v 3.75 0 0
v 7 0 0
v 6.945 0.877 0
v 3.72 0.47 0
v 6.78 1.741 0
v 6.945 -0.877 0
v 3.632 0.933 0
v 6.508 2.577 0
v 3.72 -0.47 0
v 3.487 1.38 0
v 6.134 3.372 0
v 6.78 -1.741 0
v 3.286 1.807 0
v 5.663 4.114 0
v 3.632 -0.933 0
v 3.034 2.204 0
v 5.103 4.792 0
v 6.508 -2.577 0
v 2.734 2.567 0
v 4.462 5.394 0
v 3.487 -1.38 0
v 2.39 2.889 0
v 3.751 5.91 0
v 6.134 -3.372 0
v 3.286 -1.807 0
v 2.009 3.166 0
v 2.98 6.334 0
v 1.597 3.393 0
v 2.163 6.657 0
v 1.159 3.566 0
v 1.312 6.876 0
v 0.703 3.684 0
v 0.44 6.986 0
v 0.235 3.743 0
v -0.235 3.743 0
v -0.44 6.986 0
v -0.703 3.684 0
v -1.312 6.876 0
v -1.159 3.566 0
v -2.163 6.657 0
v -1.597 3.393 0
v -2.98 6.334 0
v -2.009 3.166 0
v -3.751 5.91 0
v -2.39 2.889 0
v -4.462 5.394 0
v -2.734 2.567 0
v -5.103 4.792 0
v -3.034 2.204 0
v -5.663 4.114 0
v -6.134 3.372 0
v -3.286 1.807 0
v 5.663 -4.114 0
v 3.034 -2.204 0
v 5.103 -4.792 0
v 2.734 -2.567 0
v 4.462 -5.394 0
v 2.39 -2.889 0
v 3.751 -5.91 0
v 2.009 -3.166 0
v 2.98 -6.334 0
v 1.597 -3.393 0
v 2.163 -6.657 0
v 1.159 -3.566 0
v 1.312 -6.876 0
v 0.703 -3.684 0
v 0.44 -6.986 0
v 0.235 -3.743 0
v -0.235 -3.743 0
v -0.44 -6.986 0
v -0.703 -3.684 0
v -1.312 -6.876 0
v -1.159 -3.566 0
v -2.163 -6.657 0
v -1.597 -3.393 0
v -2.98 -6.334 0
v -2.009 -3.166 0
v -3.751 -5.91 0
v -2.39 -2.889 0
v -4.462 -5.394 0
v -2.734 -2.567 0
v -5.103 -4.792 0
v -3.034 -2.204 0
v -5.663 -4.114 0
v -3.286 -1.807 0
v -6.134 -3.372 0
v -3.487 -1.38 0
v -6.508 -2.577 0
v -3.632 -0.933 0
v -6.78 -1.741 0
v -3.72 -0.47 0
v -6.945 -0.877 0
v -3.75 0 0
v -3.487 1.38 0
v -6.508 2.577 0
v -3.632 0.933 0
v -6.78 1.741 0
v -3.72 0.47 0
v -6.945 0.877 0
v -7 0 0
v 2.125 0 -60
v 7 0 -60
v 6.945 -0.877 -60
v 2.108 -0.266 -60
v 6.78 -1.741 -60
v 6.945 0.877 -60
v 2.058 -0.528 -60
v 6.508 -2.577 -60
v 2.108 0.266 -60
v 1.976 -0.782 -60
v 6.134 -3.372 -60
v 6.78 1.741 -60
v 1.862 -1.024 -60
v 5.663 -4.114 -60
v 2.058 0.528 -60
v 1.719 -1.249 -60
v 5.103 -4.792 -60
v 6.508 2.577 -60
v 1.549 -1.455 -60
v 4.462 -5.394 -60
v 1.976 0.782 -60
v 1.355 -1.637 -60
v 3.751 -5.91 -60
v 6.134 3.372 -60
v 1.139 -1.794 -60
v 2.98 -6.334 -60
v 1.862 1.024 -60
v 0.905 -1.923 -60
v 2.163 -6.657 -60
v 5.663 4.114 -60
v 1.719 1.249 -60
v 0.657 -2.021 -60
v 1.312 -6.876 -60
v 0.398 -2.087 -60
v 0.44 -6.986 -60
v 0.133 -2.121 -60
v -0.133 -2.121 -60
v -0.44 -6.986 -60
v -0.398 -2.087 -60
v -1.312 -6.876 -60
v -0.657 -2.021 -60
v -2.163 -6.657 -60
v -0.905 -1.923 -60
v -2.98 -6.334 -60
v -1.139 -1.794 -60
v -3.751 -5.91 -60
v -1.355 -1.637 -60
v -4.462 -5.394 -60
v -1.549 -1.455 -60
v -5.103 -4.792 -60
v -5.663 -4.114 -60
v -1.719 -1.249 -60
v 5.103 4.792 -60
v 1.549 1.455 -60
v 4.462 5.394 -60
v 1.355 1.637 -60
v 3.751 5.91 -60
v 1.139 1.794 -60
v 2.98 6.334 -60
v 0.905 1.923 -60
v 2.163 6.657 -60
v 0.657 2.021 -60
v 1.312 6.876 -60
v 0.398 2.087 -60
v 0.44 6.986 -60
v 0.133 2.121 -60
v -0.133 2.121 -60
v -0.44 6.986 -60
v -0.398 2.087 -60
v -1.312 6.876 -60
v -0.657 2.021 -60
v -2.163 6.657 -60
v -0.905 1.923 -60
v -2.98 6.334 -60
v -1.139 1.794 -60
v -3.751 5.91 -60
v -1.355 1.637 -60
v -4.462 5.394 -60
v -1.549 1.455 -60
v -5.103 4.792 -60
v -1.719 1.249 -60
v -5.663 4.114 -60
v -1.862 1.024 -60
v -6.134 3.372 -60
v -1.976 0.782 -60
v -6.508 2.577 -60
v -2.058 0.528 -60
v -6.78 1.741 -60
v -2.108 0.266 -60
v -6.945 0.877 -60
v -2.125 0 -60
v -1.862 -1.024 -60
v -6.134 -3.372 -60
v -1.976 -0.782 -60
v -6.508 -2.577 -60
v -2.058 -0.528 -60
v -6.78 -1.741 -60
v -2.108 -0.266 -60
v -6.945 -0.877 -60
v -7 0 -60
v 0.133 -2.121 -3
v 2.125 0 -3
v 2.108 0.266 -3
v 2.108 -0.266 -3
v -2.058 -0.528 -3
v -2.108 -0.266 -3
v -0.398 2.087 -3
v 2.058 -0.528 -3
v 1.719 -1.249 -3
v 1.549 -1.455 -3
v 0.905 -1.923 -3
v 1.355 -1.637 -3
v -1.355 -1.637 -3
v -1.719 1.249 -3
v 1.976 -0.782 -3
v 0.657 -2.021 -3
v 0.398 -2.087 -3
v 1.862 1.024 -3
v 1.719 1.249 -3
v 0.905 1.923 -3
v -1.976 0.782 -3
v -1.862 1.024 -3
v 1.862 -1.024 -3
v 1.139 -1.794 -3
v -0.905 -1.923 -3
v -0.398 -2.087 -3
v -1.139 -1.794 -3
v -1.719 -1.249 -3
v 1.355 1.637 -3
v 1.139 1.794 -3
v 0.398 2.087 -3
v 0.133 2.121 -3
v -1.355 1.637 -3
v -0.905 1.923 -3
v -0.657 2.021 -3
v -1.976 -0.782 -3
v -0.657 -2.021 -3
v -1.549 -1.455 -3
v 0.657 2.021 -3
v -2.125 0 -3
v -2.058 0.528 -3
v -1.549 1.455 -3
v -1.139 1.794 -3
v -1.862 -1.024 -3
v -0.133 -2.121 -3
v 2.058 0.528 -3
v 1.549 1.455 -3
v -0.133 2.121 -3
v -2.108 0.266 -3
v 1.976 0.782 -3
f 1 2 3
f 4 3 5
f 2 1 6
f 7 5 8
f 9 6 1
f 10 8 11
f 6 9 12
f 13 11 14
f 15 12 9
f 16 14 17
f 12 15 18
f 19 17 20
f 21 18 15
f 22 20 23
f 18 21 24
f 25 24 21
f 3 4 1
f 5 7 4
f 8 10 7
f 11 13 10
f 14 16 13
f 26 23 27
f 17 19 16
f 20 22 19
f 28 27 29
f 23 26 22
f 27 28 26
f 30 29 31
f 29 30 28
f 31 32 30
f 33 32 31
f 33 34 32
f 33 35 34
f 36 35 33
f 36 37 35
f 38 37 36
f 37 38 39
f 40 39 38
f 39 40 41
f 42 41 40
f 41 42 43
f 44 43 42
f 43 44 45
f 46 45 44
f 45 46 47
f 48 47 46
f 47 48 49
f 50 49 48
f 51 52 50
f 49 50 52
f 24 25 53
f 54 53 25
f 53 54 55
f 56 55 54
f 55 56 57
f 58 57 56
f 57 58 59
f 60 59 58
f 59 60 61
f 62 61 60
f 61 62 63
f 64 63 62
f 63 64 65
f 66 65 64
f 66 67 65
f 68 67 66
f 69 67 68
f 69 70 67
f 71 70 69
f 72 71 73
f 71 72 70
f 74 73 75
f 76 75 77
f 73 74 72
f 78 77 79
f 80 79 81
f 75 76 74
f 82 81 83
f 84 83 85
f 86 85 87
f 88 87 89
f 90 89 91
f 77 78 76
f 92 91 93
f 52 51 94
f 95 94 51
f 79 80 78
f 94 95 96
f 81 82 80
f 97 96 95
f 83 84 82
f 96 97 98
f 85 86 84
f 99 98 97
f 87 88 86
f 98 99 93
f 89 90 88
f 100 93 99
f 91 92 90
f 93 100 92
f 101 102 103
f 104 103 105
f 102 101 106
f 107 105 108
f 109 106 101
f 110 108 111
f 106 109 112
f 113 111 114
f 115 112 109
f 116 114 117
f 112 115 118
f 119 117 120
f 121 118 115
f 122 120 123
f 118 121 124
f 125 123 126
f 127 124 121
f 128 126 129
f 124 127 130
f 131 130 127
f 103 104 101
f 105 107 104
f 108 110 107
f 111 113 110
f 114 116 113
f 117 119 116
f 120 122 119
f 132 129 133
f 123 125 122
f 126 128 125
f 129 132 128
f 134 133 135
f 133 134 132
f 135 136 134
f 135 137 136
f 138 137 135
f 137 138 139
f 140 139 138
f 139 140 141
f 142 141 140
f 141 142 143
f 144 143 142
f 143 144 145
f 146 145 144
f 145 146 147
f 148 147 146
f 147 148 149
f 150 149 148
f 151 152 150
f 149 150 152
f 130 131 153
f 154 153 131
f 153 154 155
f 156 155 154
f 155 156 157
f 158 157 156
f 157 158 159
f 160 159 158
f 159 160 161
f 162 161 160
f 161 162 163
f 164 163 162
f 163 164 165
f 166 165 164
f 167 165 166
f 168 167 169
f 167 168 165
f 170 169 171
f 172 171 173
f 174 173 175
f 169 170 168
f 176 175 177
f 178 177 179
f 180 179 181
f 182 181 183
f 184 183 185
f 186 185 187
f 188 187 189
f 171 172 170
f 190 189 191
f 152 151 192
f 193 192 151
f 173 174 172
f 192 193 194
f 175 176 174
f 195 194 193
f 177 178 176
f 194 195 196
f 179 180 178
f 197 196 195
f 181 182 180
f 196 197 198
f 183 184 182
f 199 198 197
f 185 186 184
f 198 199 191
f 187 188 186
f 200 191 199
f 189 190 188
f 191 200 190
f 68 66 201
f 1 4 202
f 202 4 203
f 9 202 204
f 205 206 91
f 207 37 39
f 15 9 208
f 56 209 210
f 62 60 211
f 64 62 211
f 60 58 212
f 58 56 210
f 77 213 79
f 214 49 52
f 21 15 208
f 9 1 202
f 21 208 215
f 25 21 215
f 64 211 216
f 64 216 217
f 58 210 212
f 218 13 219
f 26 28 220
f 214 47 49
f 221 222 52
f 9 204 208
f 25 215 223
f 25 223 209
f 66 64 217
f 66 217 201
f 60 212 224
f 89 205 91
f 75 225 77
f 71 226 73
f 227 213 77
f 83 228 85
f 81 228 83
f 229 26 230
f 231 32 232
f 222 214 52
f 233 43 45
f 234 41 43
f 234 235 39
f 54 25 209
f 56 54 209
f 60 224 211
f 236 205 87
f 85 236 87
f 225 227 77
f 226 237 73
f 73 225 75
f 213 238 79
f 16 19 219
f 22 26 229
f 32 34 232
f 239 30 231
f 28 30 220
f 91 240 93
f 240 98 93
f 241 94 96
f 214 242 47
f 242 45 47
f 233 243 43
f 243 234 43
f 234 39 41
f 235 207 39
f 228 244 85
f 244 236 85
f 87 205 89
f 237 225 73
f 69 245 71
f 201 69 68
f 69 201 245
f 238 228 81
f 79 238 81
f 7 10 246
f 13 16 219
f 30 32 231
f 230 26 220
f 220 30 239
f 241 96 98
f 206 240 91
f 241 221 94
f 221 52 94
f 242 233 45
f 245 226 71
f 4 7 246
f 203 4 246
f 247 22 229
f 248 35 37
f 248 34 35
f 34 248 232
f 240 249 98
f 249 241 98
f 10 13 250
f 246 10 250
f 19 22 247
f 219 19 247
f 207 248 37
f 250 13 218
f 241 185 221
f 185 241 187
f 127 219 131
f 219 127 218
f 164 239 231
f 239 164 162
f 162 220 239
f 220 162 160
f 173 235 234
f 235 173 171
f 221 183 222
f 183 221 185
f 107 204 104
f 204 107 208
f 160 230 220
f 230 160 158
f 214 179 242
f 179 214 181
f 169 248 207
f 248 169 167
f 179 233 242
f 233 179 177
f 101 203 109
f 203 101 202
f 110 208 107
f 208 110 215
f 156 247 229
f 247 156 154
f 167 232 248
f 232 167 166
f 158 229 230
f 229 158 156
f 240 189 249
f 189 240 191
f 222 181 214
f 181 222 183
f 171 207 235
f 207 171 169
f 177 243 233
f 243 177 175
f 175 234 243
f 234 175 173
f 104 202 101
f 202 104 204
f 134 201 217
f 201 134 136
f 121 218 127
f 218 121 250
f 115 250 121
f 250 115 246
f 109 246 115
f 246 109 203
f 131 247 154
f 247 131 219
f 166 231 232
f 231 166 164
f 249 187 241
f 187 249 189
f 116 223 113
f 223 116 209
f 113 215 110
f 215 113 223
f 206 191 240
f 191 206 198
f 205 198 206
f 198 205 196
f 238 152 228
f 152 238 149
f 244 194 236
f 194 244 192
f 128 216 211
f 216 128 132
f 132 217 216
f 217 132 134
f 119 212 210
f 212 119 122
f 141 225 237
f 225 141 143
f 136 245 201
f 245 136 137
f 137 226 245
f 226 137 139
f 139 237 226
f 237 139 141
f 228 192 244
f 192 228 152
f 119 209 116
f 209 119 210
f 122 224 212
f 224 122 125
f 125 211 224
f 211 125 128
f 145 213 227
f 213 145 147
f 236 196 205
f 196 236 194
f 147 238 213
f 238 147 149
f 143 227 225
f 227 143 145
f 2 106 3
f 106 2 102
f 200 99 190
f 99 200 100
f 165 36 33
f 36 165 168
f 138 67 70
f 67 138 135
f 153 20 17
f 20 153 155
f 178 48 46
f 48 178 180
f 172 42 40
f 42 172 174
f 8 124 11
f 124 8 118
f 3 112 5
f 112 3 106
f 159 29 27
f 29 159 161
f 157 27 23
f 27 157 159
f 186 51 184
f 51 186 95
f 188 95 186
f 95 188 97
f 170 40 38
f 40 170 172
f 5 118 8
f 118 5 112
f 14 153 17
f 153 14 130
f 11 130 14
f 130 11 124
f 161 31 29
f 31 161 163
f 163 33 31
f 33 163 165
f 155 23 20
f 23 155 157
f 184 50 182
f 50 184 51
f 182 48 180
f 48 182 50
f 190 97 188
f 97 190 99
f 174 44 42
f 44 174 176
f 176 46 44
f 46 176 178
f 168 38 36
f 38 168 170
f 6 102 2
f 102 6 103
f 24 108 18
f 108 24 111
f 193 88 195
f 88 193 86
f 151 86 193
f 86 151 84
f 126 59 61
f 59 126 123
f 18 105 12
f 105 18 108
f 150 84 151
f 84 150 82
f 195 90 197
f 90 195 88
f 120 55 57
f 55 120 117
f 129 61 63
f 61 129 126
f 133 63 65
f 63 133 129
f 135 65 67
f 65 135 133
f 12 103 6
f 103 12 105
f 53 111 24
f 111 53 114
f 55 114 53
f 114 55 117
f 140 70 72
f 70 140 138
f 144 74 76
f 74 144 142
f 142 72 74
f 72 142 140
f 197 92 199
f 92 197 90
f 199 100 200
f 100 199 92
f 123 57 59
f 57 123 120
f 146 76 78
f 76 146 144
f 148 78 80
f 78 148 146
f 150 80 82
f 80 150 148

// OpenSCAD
$fn = 50;


difference() {
	union() {
		translate(v = [0, 0, -60.0000000000]) {
			cylinder(h = 60, r = 7.0000000000);
		}
		cylinder(h = 0, r = 13.0000000000);
	}
	union() {
		translate(v = [0, 0, 0]) {
			rotate(a = [0, 0, 0]) {
				difference() {
					union() {
						#translate(v = [0, 0, -60.0000000000]) {
							cylinder(h = 60, r = 2.0000000000);
						}
						#translate(v = [0, 0, -3]) {
							cylinder(h = 3, r1 = 2.1250000000, r2 = 3.7500000000);
						}
						#translate(v = [0, 0, -60.0000000000]) {
							cylinder(h = 60, r = 2.1250000000);
						}
						#translate(v = [0, 0, -60.0000000000]) {
							cylinder(h = 60, r = 2.0000000000);
						}
					}
					union();
				}
			}
		}
	}
}
